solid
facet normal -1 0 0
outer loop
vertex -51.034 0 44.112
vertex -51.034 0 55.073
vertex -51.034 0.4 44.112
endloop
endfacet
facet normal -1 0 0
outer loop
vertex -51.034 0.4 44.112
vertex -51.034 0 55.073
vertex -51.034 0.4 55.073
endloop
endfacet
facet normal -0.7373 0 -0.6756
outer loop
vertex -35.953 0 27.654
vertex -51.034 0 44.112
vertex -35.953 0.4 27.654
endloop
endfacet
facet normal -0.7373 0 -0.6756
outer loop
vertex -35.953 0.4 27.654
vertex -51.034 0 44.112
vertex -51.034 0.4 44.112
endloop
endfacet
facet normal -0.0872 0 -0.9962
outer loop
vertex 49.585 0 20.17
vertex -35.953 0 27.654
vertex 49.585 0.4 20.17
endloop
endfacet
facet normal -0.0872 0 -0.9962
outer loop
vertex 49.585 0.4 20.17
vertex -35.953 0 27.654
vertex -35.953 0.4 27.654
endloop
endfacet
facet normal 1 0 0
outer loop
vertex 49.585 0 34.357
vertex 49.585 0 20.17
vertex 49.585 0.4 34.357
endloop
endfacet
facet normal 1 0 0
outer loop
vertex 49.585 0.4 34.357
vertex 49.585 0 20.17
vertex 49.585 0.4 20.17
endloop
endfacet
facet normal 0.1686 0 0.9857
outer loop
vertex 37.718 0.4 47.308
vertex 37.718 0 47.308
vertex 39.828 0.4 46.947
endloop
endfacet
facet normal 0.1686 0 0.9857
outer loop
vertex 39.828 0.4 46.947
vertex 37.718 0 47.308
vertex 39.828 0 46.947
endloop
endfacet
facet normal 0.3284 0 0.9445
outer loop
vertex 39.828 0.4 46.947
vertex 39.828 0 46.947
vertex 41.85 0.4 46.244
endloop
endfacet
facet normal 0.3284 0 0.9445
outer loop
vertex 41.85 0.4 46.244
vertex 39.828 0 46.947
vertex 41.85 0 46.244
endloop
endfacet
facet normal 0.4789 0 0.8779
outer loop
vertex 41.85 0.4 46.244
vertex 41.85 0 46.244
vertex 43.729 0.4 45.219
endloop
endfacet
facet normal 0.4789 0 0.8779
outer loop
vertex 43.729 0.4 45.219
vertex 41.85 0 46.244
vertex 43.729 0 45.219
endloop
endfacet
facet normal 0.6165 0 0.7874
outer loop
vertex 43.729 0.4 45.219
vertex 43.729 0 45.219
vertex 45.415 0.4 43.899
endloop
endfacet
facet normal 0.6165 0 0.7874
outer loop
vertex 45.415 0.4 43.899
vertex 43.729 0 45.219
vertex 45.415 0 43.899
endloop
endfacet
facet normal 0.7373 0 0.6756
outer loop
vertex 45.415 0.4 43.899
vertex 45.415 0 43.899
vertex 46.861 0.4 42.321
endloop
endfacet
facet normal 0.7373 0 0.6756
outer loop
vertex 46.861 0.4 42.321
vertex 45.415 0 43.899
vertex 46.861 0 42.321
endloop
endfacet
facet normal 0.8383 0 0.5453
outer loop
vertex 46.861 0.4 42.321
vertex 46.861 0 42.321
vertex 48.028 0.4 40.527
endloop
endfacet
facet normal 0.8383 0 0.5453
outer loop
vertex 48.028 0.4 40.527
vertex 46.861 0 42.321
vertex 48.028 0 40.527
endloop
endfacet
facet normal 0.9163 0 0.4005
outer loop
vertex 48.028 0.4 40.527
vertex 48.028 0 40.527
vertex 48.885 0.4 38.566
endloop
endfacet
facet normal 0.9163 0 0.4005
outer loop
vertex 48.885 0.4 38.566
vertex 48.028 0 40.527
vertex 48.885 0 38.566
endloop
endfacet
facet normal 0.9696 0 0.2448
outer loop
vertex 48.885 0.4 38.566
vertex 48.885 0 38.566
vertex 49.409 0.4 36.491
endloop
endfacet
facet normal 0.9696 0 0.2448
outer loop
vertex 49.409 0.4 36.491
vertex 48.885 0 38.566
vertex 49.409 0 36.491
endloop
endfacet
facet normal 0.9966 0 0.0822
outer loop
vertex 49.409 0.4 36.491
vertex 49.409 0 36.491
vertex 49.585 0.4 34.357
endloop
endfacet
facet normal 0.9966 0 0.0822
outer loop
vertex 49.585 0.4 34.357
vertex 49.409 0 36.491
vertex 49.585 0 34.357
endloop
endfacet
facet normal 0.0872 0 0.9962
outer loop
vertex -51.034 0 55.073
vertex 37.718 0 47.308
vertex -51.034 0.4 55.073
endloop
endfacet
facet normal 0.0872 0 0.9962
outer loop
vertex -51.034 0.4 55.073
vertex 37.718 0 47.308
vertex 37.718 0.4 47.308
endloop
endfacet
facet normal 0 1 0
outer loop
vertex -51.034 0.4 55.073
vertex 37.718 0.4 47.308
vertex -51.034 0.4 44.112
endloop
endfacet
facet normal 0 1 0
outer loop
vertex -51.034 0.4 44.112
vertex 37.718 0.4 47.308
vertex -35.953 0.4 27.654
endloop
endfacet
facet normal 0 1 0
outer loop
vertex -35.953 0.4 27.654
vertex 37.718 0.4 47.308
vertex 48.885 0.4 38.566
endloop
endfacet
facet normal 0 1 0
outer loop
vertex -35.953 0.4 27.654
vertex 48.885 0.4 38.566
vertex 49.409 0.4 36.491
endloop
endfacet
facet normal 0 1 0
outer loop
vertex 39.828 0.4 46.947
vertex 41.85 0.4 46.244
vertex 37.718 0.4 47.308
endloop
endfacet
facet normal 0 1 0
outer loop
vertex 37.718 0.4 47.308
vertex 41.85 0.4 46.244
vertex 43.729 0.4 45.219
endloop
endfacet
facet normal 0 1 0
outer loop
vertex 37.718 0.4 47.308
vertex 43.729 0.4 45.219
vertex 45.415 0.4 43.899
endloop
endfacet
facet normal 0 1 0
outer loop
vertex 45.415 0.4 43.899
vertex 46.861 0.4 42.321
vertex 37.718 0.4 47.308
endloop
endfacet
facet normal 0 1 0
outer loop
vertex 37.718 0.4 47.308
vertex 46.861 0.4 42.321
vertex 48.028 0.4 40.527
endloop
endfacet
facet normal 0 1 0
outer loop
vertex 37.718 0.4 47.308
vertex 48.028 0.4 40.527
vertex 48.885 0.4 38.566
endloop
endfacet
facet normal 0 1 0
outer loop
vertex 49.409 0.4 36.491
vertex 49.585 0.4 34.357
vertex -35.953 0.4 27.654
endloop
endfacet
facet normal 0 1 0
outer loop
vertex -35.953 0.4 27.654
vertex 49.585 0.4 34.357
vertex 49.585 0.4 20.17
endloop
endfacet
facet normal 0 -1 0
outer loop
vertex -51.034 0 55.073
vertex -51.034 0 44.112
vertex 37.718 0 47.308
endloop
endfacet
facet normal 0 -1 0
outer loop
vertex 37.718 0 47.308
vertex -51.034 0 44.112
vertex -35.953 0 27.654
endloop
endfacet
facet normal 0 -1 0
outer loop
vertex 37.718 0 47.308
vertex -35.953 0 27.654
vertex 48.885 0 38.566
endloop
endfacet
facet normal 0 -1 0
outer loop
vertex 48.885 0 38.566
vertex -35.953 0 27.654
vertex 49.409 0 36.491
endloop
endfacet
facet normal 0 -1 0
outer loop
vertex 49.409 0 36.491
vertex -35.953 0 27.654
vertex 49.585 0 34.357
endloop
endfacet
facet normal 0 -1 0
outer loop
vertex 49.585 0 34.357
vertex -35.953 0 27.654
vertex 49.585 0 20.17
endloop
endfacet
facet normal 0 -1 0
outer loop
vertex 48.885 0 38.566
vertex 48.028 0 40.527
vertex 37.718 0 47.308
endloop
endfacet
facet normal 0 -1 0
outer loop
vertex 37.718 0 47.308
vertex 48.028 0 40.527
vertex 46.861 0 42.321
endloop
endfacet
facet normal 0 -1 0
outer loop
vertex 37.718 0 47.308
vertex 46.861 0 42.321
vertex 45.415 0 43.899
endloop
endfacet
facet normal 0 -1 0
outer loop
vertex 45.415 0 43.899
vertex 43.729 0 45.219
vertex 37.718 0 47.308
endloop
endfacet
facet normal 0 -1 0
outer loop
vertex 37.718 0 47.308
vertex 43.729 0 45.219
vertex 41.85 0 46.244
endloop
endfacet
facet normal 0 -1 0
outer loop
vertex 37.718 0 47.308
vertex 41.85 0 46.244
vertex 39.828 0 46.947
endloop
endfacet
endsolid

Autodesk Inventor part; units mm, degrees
ref_plane "YZ Plane" through (0, 0, 0) normal (1, 0, 0) x (0, 1, 0)
ref_plane "XZ Plane" through (0, 0, 0) normal (0, 1, 0) x (-1, 0, 0)
ref_plane "XY Plane" through (0, 0, 0) normal (0, 0, 1) x (1, 0, 0)
sketch "Sketch1" plane through (0, 0, 0) normal (0, 1, 0) x (-1, 0, 0)
  line L0 (49.034, 47.4336) -> (49.034, 46.8346)
  arc A0 (47.7204, 43.4566) -> (49.034, 46.8346) centre (44.034, 46.8346) ccw
  line L1 (47.7204, 43.4566) -> (36.3172, 31.0122)
  arc A1 (33.0666, 29.4092) -> (36.3172, 31.0122) centre (32.6308, 34.3902) ccw
  line L2 (33.0666, 29.4092) -> (-42.1497, 22.8286)
  arc A2 (-47.5855, 27.8096) -> (-42.1497, 22.8286) centre (-42.5855, 27.8096) ccw
  line L3 (-47.5855, 27.8096) -> (-47.5855, 34.3574)
  arc A3 (-37.5442, 45.3156) -> (-47.5855, 34.3574) centre (-36.5855, 34.3574) ccw
  line L4 (-37.5442, 45.3156) -> (43.5982, 52.4146)
  arc A4 (49.034, 47.4336) -> (43.5982, 52.4146) centre (44.034, 47.4336) ccw
  line L5 (35.9527, 27.654) -> (51.034, 44.1124)
  line L6 (51.034, 44.1124) -> (51.034, 55.0728)
  line L7 (51.034, 55.0728) -> (-37.7185, 47.308)
  arc A5 (-37.7185, 47.308) -> (-49.5855, 34.3574) centre (-36.5855, 34.3574) ccw
  line L8 (-49.5855, 34.3574) -> (-49.5855, 20.1704)
  line L9 (-49.5855, 20.1704) -> (35.9527, 27.654)
  line L10 (35.8578, 27.8465) -> (50.834, 44.1902)
  line L11 (50.834, 44.1902) -> (50.834, 54.8546)
  line L12 (50.834, 54.8546) -> (-37.7011, 47.1087)
  arc A6 (-37.7011, 47.1087) -> (-49.3855, 34.3574) centre (-36.5855, 34.3574) ccw
  line L13 (-49.3855, 34.3574) -> (-49.3855, 20.3887)
  line L14 (-49.3855, 20.3887) -> (35.8578, 27.8465)
  dimension "d0" = 0.2
extrude "Extrusion1" add sketch "Sketch1" along normal blind 0.4 contours L0 A0 L1 A1 L2 A2 L3 A3 L4 A4 | L9 L8 A5 L7 L6 L5 | L14 L13 A6 L12 L11 L10
properties part number "f"
